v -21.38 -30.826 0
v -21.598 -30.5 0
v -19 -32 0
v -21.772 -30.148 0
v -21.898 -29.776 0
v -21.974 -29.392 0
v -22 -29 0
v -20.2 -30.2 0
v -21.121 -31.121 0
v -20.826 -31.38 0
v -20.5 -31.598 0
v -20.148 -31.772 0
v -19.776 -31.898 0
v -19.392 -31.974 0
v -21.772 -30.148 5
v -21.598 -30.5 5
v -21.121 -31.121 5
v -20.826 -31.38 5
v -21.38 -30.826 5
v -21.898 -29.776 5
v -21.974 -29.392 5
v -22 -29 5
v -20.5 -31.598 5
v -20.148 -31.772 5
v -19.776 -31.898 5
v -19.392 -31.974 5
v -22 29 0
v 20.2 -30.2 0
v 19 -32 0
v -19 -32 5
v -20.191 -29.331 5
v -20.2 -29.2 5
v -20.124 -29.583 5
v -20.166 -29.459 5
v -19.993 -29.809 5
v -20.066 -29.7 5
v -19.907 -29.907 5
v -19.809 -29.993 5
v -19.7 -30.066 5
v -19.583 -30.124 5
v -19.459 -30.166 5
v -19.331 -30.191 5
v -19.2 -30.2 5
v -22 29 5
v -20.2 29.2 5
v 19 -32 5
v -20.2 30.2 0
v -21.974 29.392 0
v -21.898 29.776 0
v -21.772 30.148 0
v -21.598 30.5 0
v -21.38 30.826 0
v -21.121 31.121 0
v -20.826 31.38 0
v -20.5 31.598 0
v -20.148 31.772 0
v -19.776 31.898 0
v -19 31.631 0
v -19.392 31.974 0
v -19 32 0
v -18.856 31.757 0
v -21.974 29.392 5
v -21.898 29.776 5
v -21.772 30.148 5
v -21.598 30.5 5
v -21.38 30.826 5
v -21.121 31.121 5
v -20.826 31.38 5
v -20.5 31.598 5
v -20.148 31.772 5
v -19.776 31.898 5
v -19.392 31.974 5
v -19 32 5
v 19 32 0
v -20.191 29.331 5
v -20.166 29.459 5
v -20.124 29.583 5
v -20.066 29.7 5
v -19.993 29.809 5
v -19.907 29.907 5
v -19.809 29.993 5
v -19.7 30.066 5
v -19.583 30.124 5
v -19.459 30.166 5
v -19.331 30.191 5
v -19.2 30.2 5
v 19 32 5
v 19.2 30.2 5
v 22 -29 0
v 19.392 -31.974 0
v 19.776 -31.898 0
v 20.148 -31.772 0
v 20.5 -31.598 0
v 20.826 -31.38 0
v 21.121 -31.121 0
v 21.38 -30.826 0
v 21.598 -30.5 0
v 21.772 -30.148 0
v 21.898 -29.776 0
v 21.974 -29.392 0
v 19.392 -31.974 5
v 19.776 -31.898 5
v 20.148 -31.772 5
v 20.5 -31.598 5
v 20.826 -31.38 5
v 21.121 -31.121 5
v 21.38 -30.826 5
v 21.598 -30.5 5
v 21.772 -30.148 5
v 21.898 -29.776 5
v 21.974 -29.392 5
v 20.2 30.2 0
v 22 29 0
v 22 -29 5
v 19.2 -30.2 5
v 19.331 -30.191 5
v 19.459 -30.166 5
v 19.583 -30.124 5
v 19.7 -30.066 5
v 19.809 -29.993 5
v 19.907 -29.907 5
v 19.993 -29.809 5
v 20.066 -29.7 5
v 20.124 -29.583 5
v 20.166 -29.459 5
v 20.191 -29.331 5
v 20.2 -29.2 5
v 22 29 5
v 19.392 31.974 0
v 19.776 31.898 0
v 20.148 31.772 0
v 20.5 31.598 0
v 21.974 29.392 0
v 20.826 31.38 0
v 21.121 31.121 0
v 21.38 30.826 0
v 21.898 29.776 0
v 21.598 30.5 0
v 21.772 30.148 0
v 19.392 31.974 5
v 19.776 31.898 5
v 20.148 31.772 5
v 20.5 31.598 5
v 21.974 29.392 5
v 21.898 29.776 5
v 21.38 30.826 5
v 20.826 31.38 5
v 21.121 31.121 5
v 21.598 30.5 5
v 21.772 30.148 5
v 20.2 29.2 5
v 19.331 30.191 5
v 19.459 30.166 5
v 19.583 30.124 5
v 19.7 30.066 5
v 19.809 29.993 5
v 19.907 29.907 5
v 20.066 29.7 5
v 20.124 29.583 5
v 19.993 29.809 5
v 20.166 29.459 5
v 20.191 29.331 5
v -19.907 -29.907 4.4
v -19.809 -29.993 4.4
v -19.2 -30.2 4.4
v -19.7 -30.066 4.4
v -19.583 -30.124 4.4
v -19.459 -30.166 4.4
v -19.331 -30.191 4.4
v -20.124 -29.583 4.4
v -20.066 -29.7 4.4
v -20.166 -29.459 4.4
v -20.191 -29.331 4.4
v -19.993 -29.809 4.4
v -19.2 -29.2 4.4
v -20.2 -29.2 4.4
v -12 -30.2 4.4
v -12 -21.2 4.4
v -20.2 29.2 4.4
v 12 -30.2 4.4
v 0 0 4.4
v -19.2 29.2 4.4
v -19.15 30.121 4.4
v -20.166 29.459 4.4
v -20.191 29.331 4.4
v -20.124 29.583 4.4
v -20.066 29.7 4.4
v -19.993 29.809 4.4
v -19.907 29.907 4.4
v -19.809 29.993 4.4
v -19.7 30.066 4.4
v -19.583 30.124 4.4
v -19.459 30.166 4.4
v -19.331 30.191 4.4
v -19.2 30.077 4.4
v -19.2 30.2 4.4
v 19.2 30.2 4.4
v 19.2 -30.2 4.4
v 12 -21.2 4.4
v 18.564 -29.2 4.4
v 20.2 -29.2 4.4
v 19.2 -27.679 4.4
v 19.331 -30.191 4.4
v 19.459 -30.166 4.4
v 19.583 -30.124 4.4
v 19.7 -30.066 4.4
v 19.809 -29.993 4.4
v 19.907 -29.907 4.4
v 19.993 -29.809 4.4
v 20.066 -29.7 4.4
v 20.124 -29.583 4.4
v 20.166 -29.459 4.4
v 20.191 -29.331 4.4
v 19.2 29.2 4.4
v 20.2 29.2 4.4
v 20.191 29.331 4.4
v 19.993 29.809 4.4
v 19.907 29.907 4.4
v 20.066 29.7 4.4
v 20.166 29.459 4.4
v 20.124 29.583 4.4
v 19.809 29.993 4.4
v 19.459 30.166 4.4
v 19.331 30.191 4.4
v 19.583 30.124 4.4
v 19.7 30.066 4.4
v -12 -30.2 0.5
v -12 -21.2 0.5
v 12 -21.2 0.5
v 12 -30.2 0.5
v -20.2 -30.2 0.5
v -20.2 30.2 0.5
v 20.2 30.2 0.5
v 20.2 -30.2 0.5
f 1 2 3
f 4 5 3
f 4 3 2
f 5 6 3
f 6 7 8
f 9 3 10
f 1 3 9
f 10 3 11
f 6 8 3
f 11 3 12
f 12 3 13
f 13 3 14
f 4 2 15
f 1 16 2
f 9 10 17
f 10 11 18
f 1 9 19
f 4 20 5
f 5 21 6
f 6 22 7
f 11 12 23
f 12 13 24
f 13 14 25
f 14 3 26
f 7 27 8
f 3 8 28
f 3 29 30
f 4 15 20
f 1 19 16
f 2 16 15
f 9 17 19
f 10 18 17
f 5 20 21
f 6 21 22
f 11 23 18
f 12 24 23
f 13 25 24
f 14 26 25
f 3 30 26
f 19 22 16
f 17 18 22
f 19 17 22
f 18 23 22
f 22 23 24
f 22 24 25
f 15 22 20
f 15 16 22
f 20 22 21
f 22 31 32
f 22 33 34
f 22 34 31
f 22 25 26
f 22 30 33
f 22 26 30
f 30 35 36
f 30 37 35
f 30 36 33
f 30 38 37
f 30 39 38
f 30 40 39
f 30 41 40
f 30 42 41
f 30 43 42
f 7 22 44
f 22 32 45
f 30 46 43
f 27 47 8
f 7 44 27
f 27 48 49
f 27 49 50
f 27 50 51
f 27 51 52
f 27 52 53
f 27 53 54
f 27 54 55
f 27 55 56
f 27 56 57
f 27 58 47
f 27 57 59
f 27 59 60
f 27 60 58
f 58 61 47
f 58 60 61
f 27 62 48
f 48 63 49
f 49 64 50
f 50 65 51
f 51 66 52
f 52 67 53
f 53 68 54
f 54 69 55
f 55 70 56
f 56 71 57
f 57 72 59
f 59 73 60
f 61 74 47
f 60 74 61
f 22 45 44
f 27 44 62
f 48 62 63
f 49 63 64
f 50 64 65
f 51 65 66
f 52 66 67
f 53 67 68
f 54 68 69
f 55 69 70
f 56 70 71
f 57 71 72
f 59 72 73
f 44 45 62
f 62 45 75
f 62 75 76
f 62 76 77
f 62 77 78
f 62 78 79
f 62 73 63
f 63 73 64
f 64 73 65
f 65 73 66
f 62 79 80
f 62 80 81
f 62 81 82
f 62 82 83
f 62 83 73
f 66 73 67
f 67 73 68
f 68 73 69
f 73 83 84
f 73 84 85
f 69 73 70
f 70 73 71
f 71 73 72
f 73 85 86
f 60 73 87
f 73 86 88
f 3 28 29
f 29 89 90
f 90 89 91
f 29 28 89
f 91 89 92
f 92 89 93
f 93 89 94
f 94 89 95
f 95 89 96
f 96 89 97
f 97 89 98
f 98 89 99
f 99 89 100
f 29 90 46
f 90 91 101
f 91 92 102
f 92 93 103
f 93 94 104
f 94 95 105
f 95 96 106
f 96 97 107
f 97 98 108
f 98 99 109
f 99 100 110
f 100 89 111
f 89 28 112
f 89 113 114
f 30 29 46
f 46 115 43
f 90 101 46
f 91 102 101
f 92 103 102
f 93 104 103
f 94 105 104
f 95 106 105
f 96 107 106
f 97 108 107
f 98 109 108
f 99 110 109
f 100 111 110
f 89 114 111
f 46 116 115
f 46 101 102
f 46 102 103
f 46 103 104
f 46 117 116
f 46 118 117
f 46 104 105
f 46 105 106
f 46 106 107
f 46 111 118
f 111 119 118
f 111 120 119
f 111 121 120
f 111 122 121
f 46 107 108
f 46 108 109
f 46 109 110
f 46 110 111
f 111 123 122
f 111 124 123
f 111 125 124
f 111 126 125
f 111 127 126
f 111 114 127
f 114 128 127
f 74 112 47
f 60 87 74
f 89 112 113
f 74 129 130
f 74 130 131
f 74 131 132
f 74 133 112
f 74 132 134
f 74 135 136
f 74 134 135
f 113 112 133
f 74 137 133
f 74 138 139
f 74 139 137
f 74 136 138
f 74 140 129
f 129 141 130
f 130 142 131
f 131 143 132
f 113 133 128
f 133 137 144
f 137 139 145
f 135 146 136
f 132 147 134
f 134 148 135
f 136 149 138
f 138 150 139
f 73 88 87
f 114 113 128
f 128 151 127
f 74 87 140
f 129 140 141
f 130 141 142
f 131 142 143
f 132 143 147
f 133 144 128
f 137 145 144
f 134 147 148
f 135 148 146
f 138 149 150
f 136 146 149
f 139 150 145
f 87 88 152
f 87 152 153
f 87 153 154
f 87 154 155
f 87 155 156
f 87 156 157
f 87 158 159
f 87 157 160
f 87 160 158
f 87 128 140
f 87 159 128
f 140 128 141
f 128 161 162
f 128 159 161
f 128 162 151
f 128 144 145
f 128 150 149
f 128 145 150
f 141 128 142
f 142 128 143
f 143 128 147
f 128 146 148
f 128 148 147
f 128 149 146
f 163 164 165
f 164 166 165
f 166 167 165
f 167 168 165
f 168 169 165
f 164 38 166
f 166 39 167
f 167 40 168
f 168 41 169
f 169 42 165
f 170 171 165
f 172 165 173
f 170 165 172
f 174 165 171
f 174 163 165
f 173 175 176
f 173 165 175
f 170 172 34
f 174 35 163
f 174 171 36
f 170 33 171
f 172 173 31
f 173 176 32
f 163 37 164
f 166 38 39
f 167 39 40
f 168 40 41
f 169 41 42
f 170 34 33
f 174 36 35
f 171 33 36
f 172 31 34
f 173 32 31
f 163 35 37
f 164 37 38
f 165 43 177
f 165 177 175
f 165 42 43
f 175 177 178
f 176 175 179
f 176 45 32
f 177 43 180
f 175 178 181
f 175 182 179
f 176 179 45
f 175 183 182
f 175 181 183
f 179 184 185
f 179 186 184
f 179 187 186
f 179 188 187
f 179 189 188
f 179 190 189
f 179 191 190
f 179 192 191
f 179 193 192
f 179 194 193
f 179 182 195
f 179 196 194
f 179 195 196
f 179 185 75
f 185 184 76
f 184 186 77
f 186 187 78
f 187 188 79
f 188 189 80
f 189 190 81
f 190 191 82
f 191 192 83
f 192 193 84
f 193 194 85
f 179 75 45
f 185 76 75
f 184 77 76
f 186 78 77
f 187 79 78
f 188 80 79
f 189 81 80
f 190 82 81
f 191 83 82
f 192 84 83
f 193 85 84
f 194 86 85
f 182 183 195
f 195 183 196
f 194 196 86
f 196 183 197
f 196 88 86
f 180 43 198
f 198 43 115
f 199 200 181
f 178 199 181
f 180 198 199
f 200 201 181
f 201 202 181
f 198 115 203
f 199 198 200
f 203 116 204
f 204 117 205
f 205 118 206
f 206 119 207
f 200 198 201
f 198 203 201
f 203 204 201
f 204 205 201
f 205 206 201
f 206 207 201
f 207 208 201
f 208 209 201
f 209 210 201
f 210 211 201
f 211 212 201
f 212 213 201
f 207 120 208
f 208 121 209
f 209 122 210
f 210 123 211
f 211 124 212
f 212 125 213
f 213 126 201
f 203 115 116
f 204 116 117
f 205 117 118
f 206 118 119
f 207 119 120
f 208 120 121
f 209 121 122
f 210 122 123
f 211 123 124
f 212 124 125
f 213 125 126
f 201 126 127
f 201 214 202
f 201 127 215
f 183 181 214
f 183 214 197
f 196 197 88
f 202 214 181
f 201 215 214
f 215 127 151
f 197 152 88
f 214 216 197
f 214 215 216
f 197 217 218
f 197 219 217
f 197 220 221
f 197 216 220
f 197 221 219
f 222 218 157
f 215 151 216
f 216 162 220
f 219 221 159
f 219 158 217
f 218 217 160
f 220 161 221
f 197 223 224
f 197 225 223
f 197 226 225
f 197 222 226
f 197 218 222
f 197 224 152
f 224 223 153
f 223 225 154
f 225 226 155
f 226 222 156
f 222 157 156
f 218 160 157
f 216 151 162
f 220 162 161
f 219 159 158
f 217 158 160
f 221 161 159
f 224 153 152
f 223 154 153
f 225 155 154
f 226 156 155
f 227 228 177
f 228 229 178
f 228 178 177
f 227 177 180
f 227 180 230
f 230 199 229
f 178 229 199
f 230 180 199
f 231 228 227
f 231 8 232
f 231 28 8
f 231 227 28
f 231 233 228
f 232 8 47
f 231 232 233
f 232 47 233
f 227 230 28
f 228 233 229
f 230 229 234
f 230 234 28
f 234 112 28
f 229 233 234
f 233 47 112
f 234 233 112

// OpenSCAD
// RC522-Halter, flach: nur eine Grundplatte, keine Seitenwände. Platine und Platte werden mit doppelseitigem Klebeband geklebt.
// Platine mit der Rückseite aufkleben, Spulenseite zeigt vom Halter weg zum Tag. Fenster lässt die Stiftleiste durch.
// Druck: flach auf das Bett, PETG oder ASA, 0,2 mm, 3 Wände, ohne Stützen. Alle Maße in mm.
pcb_w = 40;  pcb_l = 60;
margin = 2;        // Rand um die Platine
plate_t = 5;       // Plattendicke = Abstand der Platine zur Wand (2.4 = dünne Version)
ferrit_t = 0.5;    // Mulde auf der Wandseite für Ferrit-Folie (0 = keine)
pocket = 0.6;      // flache Mulde als Positionshilfe (Platine liegt darin)
fit = 0.4;
hdr_w = 24; hdr_d = 9;   // Fenster für 8-Pin-Leiste an der Schmalseite (−Y)
r = 3;

W = pcb_w + 2*margin;  L = pcb_l + 2*margin;
module rrect(w, l, h, rad) {
  hull() for (sx=[-1,1], sy=[-1,1]) translate([sx*(w/2-rad), sy*(l/2-rad), 0]) cylinder(r = rad, h = h, $fn = 48);
}
difference() {
  rrect(W, L, plate_t, r);
  translate([0, 0, plate_t - pocket]) rrect(pcb_w + fit, pcb_l + fit, pocket + 1, 1);
  if (ferrit_t > 0) translate([-(pcb_w+fit)/2, -(pcb_l+fit)/2, -1]) cube([pcb_w+fit, pcb_l+fit, 1+ferrit_t]);
  translate([-hdr_w/2, -pcb_l/2 - 0.2, -1]) cube([hdr_w, hdr_d, plate_t + 2]);
}
